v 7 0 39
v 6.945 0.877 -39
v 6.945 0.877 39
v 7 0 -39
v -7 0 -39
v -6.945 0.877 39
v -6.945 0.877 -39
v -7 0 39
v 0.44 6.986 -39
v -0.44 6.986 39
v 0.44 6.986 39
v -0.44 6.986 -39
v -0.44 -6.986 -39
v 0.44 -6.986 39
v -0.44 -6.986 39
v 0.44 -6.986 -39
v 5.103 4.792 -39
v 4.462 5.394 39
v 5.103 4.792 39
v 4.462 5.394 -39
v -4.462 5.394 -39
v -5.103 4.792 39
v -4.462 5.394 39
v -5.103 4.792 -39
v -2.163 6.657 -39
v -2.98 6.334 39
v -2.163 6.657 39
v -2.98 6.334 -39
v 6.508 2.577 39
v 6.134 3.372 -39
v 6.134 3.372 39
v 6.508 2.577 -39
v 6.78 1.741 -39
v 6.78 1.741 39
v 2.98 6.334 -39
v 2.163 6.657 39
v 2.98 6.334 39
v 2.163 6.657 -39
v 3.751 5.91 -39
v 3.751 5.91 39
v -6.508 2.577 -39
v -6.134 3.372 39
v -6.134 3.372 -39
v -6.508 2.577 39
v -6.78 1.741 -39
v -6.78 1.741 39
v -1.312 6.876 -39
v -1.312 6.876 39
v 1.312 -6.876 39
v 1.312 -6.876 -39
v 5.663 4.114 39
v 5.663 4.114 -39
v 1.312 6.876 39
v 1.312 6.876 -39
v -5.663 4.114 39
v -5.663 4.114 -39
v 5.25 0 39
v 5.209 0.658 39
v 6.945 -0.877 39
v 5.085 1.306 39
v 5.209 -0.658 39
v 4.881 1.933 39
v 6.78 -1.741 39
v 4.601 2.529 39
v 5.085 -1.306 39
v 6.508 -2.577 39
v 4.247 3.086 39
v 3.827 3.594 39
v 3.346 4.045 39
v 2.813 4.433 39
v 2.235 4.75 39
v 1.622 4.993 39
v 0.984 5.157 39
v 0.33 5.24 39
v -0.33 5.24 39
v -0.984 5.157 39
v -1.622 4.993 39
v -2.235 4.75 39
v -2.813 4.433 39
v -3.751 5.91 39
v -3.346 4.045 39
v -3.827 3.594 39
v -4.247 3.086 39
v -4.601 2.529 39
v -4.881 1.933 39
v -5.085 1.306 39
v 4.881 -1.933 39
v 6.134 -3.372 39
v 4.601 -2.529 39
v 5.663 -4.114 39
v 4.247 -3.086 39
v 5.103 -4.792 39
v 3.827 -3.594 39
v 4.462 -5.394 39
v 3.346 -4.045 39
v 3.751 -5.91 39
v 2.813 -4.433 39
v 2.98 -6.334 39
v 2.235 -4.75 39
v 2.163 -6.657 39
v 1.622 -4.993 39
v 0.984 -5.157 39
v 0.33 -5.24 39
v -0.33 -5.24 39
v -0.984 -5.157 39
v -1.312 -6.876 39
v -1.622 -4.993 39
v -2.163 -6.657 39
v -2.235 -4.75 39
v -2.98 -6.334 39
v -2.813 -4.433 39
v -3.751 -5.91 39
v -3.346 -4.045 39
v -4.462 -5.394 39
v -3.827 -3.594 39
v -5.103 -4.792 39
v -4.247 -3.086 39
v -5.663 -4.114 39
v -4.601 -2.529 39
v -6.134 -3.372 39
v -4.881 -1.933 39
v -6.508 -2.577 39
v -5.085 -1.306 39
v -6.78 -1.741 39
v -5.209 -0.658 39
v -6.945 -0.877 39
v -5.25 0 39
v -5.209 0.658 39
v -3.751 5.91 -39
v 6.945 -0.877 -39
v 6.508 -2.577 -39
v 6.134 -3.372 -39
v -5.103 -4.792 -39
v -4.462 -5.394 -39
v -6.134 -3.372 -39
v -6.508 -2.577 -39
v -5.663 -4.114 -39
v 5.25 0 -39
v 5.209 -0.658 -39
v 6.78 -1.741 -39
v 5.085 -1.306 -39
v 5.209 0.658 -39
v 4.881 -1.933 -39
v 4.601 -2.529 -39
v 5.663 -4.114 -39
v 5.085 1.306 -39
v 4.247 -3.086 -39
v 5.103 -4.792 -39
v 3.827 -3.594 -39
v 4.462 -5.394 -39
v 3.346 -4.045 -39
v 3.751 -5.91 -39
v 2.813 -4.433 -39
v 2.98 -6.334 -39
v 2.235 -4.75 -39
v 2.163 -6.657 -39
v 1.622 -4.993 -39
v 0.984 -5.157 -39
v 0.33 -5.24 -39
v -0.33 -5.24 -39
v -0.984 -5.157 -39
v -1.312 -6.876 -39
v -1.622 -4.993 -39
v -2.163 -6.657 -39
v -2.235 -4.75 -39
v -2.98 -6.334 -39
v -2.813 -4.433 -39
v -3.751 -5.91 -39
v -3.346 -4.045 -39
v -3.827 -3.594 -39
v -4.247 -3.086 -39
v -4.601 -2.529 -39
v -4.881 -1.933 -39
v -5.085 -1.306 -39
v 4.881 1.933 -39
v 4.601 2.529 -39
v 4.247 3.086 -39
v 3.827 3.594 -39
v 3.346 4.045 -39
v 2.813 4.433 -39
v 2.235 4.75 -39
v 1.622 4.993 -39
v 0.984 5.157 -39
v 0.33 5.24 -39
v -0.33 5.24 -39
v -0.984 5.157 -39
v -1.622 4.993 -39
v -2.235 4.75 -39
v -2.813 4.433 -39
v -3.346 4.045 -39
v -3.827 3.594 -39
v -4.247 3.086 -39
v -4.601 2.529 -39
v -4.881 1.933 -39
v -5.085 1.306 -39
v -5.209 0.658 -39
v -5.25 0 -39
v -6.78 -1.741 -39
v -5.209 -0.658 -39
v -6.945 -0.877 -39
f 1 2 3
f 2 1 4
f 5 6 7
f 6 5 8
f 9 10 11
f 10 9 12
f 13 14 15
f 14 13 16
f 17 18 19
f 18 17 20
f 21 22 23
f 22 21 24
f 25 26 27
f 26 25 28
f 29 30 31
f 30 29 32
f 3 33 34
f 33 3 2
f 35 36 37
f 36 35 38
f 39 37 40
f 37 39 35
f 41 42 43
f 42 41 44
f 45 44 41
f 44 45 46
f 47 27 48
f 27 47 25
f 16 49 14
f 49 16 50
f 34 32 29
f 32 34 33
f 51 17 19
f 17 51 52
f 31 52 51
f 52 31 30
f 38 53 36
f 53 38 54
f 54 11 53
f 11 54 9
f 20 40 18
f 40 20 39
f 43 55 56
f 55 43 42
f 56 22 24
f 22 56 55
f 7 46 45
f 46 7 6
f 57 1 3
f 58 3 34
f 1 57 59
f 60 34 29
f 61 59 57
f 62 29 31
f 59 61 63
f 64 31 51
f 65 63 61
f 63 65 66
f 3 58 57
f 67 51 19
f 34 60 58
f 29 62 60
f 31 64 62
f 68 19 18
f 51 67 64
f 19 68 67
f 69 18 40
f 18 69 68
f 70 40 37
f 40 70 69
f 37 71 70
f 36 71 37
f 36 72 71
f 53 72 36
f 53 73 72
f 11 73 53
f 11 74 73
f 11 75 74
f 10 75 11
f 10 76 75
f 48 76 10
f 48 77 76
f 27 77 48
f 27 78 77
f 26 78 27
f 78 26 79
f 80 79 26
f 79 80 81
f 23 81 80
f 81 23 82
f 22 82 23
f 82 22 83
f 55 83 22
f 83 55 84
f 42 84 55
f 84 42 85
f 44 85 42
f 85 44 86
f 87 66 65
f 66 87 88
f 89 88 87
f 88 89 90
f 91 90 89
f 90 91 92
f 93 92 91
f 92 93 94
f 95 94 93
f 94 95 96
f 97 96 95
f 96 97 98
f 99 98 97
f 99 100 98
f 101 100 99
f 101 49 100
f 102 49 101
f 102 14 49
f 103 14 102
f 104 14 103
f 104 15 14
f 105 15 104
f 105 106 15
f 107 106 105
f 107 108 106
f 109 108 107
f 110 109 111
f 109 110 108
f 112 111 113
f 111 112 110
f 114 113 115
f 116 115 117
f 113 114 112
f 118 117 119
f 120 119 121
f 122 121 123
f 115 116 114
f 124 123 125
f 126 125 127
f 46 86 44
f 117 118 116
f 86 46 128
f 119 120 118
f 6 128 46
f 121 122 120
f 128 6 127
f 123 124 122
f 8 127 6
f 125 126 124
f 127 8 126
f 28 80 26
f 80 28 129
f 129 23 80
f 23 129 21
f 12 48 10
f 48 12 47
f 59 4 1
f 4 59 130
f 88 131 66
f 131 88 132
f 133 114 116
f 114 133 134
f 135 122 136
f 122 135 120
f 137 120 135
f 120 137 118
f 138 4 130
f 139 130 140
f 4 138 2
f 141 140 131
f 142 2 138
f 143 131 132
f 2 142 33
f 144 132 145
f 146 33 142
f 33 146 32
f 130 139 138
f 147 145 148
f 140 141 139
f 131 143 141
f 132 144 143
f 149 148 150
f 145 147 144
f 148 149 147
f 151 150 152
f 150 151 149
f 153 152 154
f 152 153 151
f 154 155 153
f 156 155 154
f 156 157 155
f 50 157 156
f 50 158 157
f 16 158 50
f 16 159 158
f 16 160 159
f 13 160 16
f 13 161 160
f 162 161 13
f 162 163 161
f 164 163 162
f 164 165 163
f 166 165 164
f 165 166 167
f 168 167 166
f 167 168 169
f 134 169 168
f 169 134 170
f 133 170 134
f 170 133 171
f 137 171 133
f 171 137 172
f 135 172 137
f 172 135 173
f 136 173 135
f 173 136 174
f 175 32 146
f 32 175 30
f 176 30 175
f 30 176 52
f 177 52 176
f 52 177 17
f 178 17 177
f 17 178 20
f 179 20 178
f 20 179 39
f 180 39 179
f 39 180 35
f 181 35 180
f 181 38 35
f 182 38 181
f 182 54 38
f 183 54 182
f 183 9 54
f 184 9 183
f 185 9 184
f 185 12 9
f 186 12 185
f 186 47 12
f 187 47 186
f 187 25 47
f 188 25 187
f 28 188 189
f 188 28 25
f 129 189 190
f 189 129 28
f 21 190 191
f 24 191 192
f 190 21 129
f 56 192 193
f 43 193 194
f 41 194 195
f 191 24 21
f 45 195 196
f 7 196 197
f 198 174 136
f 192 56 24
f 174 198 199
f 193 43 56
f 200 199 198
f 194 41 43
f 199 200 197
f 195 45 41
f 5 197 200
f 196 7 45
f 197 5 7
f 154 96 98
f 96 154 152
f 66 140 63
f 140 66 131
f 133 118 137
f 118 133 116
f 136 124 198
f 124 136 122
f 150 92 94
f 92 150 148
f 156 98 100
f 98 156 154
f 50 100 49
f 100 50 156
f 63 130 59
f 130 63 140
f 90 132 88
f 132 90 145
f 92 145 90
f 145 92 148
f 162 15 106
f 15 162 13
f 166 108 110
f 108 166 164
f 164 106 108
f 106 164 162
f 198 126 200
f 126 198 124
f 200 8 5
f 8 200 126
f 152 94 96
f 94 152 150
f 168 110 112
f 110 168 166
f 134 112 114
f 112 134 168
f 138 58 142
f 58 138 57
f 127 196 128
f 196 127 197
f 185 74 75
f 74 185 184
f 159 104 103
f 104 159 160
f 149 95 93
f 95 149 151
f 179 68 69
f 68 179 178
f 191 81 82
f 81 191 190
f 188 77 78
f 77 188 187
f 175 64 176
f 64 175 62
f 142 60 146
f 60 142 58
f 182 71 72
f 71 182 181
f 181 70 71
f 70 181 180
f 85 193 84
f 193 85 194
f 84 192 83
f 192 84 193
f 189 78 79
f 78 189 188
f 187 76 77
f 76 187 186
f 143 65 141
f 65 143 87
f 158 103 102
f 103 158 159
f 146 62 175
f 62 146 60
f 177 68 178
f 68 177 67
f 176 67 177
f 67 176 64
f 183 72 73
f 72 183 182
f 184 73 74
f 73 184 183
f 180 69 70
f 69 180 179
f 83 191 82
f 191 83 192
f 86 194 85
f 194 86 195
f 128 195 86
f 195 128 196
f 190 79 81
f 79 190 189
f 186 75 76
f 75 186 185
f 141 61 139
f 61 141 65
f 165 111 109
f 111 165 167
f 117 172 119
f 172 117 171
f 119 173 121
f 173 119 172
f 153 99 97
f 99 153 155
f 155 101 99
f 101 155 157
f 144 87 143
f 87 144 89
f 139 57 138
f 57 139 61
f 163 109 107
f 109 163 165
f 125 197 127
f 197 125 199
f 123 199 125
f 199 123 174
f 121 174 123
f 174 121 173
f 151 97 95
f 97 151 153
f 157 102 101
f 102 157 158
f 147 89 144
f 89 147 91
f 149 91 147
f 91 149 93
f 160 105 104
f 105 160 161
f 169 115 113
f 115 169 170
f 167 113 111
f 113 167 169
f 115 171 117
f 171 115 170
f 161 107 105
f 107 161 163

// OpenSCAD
$fn = 50;


difference() {
	union() {
		translate(v = [0, 0, -39.0000000000]) {
			cylinder(h = 78, r = 7.0000000000);
		}
	}
	union() {
		translate(v = [0, 0, -100.0000000000]) {
			cylinder(h = 200, r = 5.2500000000);
		}
	}
}
